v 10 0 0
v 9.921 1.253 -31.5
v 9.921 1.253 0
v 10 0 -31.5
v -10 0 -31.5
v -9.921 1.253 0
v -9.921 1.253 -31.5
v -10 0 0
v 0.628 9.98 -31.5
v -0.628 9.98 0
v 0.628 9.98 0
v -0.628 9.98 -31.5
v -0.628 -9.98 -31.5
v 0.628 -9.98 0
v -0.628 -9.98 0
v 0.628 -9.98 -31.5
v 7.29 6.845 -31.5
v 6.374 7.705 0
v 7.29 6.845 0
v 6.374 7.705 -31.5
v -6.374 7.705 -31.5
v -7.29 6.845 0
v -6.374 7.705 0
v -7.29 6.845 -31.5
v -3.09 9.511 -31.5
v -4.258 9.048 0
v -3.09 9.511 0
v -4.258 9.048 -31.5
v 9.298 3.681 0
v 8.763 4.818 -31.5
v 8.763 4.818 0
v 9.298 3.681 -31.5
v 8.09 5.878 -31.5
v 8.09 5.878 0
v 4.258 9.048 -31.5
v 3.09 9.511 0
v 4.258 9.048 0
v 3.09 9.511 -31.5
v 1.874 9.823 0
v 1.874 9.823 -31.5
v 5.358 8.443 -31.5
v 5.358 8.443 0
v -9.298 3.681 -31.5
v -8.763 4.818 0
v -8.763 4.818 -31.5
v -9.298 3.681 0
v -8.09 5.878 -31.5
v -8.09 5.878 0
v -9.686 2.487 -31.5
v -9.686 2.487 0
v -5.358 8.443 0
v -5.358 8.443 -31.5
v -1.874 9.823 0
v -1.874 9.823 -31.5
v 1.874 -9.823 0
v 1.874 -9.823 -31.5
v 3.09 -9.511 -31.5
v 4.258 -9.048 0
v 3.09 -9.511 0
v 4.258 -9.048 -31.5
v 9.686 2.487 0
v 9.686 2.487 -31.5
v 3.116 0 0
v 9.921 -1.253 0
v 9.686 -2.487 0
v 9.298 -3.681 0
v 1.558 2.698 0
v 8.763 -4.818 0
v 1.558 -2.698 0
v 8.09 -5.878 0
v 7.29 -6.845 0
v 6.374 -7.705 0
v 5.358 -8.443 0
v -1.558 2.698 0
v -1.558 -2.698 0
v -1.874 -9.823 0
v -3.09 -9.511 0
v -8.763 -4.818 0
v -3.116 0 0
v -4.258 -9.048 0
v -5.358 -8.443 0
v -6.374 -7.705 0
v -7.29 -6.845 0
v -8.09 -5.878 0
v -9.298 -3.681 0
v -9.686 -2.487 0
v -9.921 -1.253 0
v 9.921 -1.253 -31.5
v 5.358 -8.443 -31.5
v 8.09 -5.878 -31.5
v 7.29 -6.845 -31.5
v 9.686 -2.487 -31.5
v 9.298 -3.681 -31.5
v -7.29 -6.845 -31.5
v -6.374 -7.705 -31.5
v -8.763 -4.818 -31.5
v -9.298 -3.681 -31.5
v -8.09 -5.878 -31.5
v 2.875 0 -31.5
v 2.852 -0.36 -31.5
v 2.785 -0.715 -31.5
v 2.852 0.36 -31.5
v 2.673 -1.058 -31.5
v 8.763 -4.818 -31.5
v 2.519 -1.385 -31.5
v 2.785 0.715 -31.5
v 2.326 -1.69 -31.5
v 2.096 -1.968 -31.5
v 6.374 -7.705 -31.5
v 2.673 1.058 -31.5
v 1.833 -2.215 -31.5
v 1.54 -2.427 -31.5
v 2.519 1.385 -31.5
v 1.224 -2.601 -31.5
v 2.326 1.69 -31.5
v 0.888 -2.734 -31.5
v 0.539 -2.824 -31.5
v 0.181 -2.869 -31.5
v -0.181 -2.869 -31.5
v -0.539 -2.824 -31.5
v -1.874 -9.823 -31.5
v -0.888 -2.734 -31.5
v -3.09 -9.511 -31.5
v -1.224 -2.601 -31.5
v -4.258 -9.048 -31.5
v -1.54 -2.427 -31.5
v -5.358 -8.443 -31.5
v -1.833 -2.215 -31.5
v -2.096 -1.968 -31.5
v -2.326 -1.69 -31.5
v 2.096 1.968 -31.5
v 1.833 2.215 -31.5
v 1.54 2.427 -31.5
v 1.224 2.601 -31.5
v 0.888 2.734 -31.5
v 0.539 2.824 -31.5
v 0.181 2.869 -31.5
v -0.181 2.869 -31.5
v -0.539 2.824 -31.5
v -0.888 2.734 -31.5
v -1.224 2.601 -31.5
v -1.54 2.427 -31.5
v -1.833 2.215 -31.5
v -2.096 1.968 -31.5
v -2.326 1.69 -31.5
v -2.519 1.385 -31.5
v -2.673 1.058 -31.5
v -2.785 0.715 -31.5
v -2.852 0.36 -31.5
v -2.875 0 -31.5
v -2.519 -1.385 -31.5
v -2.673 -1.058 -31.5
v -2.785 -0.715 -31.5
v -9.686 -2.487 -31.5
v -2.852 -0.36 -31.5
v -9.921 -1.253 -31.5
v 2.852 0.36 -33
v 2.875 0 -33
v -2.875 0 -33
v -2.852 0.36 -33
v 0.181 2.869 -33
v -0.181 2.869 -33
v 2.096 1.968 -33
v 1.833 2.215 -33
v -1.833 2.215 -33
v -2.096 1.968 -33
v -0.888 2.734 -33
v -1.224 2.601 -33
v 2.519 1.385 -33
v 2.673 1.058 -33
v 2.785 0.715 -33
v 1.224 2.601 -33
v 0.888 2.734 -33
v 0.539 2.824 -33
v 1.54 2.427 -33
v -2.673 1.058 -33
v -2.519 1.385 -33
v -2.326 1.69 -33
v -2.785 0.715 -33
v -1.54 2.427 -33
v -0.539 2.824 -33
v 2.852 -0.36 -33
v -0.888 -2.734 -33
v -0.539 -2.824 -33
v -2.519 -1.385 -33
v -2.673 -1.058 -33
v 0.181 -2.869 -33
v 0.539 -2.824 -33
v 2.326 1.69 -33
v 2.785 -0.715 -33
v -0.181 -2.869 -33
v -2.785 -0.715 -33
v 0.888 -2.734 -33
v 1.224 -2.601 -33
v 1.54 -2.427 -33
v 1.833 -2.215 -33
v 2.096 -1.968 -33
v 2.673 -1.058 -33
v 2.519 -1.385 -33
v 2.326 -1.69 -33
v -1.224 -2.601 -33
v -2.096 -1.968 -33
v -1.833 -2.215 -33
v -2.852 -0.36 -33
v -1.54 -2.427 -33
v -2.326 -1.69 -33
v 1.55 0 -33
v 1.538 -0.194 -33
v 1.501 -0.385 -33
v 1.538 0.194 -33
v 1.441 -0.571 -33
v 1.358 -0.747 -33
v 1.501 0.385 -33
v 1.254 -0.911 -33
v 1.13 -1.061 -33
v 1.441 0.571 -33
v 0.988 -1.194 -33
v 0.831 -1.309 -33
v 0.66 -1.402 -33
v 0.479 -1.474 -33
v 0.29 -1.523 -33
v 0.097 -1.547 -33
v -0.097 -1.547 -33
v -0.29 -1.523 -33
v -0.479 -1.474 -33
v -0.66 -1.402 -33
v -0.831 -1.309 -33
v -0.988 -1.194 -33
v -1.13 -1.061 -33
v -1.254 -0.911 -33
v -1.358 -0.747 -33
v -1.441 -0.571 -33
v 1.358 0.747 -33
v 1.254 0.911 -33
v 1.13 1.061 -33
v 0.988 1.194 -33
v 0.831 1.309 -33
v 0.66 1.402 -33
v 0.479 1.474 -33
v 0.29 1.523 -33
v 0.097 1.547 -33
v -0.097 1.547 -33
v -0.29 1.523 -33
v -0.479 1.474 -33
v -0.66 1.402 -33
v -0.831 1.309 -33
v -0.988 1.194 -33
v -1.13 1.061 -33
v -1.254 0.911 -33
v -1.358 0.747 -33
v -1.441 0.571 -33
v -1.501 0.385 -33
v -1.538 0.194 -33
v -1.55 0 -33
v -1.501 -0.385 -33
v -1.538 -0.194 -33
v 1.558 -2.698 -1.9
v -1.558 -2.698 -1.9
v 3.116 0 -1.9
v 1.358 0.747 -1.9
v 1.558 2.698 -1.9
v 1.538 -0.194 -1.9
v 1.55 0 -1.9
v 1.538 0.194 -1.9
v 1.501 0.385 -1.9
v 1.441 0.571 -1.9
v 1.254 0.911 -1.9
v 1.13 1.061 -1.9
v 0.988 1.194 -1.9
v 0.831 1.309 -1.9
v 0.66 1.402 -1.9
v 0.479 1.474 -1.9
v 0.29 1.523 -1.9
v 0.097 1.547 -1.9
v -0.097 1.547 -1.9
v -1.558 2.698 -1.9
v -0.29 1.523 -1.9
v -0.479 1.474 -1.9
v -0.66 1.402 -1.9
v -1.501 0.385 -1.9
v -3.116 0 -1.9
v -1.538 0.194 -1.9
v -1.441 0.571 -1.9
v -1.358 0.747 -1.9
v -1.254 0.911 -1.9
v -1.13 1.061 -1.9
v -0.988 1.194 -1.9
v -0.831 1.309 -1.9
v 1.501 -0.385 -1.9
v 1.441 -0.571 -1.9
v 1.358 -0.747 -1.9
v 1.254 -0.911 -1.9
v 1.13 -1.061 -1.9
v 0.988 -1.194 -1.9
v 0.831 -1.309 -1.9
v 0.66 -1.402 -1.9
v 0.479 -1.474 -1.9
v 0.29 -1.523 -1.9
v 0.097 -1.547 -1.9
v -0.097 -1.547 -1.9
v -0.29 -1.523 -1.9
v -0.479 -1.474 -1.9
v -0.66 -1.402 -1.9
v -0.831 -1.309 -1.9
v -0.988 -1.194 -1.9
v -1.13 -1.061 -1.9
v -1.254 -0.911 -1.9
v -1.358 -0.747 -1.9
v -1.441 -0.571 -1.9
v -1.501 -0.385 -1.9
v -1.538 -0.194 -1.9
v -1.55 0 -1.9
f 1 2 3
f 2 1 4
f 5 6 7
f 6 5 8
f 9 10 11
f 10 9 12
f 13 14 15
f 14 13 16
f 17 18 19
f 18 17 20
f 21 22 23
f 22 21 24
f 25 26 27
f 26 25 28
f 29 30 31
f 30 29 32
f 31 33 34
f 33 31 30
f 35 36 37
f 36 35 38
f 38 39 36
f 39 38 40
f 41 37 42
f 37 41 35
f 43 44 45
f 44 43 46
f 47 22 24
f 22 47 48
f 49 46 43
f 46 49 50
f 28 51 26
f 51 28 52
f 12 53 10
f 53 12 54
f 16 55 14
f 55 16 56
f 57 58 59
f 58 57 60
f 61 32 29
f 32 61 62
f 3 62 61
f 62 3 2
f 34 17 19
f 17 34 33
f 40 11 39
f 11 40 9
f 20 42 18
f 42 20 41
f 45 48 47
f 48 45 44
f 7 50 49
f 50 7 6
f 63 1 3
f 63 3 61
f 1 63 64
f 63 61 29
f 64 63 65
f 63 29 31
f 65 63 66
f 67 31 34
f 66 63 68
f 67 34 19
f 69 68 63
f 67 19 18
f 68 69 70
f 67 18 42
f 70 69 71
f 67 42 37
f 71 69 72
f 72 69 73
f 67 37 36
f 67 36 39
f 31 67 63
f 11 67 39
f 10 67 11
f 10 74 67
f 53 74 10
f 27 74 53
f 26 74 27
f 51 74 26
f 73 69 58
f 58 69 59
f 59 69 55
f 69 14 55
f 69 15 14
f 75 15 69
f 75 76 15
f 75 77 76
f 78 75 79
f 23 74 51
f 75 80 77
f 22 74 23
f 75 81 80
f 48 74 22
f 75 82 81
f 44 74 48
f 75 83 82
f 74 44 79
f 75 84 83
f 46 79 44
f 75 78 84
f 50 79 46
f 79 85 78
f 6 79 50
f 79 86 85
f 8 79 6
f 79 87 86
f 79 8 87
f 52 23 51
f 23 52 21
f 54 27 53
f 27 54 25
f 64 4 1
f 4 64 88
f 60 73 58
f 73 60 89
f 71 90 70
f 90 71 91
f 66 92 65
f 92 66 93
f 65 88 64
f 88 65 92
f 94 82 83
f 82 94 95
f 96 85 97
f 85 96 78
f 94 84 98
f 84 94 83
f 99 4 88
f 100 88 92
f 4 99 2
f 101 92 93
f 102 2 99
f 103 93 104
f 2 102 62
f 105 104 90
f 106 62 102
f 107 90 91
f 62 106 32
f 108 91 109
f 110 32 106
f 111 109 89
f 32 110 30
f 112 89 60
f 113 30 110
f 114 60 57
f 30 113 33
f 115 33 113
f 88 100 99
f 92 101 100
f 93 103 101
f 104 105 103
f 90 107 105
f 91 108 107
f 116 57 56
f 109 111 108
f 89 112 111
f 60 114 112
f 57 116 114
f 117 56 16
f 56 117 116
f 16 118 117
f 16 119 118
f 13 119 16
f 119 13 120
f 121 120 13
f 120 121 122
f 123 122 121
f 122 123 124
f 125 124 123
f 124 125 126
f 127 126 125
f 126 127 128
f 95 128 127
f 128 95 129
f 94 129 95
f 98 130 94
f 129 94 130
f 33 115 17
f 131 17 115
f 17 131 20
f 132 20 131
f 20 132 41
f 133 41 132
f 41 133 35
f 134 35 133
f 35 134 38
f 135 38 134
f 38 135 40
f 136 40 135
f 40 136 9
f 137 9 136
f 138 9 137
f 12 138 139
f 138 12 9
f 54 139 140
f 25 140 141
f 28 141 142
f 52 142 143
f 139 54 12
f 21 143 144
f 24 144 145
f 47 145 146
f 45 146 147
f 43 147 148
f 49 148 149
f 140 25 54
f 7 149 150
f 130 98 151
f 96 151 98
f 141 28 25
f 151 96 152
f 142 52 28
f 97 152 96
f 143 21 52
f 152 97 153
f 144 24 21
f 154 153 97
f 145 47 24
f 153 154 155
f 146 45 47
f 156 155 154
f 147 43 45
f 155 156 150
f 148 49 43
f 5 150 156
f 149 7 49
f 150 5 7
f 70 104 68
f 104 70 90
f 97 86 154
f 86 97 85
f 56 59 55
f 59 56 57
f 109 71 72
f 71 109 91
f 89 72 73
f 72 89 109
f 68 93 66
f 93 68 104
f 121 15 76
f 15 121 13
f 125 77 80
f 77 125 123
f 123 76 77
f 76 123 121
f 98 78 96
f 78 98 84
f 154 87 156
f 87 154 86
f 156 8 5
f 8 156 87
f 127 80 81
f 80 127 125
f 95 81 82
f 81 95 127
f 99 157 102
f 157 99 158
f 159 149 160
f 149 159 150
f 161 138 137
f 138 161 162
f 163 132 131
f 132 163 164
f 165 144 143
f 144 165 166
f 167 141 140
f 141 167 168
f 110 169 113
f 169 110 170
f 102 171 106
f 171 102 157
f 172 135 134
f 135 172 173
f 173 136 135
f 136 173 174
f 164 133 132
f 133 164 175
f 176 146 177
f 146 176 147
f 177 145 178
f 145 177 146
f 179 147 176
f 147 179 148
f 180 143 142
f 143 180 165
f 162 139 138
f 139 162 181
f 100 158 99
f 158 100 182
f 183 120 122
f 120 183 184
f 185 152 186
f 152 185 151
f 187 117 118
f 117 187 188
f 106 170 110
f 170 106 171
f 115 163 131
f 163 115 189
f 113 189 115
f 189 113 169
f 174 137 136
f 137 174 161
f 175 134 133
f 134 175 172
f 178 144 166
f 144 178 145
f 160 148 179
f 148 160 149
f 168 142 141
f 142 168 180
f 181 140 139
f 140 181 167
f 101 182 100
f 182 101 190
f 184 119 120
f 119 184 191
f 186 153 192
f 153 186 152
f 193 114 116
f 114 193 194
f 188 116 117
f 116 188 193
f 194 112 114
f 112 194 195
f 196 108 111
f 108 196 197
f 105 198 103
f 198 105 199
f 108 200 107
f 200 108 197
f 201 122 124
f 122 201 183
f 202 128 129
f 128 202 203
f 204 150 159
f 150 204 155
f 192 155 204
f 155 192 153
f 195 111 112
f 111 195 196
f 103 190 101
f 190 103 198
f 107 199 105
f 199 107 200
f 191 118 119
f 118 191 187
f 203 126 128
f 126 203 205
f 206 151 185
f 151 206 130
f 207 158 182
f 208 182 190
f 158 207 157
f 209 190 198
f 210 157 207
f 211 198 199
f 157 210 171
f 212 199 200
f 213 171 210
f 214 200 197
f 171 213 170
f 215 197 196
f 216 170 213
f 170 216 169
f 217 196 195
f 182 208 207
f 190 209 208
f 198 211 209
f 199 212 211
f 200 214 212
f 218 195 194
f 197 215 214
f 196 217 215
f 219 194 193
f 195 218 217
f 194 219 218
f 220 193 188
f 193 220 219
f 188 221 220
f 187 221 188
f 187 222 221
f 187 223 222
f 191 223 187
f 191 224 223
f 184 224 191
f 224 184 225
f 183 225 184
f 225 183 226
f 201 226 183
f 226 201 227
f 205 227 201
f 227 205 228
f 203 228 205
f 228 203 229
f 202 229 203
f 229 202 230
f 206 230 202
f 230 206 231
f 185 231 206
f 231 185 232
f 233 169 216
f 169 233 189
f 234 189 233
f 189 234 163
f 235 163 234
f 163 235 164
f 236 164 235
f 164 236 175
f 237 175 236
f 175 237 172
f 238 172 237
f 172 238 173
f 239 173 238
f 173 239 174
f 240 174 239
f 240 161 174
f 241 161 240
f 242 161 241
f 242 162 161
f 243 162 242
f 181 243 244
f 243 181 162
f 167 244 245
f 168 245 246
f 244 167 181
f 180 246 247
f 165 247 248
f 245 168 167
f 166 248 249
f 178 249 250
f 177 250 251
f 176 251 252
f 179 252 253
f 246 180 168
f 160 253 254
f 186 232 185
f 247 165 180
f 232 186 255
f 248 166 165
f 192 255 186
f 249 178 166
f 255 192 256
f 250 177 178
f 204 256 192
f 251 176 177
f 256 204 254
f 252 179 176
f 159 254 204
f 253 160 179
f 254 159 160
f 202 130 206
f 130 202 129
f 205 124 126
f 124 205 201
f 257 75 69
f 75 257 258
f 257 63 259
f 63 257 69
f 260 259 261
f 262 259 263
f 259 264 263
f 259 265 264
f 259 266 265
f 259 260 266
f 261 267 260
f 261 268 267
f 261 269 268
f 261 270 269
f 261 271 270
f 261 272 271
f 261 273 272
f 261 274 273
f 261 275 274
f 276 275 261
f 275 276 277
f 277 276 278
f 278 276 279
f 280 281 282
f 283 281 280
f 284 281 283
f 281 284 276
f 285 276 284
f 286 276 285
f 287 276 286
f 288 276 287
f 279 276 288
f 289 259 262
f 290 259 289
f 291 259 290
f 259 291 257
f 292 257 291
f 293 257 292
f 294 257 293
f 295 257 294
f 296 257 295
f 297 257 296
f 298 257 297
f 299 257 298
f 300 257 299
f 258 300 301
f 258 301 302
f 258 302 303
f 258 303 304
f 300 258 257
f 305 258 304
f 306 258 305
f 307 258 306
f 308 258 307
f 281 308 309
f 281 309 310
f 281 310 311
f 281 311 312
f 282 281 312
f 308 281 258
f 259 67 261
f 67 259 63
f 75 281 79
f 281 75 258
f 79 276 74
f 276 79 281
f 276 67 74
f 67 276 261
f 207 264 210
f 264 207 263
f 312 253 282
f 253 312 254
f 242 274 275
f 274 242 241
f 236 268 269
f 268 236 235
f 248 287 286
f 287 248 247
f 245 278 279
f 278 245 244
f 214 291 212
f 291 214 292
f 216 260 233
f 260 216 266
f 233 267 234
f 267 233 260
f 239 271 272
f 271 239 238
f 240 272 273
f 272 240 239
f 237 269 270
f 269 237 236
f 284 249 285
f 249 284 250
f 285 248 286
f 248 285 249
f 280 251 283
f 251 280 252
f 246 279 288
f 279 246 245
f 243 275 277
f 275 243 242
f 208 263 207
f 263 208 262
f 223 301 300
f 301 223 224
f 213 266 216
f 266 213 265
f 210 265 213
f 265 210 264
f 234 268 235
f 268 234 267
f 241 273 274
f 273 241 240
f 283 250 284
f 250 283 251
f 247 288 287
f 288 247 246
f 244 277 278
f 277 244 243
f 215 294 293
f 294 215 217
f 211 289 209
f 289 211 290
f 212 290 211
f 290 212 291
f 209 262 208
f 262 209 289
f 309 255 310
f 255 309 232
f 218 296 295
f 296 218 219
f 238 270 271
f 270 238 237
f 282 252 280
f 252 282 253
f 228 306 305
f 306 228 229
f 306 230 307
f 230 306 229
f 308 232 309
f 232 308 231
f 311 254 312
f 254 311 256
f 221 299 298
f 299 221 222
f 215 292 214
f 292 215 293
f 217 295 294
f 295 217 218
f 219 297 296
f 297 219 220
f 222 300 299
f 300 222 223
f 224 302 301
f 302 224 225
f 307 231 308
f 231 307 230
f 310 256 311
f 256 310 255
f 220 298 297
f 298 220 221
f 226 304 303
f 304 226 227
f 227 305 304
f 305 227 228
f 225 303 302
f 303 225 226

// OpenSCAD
$fn = 50;

difference() {
	union() {
		translate(v = [0, 0, -31.5]) {
			cylinder(h = 31.5, r = 10.0);
		}
		#translate(v = [0, 0, -33.0]) {
			cylinder(h = 33, r = 2.875);
		}
	}
	union() {
		translate(v = [0, 0, 0]) {
			rotate(a = [0, 0, 0]) {
				difference() {
					union() {
						translate(v = [0, 0, -1.9]) {
							linear_extrude(height = 1.9) {
								polygon(points = [[3.1158, 0.0], [1.5579000000000005, 2.698361953111554], [-1.5578999999999994, 2.6983619531115544], [-3.1158, 3.815754496783323e-16], [-1.5579000000000014, -2.6983619531115535], [1.557899999999998, -2.6983619531115552]]);
							}
						}
					}
					union();
				}
			}
		}
		#translate(v = [0, 0, -100.0]) {
			cylinder(h = 200, r = 1.55);
		}
	}
}
